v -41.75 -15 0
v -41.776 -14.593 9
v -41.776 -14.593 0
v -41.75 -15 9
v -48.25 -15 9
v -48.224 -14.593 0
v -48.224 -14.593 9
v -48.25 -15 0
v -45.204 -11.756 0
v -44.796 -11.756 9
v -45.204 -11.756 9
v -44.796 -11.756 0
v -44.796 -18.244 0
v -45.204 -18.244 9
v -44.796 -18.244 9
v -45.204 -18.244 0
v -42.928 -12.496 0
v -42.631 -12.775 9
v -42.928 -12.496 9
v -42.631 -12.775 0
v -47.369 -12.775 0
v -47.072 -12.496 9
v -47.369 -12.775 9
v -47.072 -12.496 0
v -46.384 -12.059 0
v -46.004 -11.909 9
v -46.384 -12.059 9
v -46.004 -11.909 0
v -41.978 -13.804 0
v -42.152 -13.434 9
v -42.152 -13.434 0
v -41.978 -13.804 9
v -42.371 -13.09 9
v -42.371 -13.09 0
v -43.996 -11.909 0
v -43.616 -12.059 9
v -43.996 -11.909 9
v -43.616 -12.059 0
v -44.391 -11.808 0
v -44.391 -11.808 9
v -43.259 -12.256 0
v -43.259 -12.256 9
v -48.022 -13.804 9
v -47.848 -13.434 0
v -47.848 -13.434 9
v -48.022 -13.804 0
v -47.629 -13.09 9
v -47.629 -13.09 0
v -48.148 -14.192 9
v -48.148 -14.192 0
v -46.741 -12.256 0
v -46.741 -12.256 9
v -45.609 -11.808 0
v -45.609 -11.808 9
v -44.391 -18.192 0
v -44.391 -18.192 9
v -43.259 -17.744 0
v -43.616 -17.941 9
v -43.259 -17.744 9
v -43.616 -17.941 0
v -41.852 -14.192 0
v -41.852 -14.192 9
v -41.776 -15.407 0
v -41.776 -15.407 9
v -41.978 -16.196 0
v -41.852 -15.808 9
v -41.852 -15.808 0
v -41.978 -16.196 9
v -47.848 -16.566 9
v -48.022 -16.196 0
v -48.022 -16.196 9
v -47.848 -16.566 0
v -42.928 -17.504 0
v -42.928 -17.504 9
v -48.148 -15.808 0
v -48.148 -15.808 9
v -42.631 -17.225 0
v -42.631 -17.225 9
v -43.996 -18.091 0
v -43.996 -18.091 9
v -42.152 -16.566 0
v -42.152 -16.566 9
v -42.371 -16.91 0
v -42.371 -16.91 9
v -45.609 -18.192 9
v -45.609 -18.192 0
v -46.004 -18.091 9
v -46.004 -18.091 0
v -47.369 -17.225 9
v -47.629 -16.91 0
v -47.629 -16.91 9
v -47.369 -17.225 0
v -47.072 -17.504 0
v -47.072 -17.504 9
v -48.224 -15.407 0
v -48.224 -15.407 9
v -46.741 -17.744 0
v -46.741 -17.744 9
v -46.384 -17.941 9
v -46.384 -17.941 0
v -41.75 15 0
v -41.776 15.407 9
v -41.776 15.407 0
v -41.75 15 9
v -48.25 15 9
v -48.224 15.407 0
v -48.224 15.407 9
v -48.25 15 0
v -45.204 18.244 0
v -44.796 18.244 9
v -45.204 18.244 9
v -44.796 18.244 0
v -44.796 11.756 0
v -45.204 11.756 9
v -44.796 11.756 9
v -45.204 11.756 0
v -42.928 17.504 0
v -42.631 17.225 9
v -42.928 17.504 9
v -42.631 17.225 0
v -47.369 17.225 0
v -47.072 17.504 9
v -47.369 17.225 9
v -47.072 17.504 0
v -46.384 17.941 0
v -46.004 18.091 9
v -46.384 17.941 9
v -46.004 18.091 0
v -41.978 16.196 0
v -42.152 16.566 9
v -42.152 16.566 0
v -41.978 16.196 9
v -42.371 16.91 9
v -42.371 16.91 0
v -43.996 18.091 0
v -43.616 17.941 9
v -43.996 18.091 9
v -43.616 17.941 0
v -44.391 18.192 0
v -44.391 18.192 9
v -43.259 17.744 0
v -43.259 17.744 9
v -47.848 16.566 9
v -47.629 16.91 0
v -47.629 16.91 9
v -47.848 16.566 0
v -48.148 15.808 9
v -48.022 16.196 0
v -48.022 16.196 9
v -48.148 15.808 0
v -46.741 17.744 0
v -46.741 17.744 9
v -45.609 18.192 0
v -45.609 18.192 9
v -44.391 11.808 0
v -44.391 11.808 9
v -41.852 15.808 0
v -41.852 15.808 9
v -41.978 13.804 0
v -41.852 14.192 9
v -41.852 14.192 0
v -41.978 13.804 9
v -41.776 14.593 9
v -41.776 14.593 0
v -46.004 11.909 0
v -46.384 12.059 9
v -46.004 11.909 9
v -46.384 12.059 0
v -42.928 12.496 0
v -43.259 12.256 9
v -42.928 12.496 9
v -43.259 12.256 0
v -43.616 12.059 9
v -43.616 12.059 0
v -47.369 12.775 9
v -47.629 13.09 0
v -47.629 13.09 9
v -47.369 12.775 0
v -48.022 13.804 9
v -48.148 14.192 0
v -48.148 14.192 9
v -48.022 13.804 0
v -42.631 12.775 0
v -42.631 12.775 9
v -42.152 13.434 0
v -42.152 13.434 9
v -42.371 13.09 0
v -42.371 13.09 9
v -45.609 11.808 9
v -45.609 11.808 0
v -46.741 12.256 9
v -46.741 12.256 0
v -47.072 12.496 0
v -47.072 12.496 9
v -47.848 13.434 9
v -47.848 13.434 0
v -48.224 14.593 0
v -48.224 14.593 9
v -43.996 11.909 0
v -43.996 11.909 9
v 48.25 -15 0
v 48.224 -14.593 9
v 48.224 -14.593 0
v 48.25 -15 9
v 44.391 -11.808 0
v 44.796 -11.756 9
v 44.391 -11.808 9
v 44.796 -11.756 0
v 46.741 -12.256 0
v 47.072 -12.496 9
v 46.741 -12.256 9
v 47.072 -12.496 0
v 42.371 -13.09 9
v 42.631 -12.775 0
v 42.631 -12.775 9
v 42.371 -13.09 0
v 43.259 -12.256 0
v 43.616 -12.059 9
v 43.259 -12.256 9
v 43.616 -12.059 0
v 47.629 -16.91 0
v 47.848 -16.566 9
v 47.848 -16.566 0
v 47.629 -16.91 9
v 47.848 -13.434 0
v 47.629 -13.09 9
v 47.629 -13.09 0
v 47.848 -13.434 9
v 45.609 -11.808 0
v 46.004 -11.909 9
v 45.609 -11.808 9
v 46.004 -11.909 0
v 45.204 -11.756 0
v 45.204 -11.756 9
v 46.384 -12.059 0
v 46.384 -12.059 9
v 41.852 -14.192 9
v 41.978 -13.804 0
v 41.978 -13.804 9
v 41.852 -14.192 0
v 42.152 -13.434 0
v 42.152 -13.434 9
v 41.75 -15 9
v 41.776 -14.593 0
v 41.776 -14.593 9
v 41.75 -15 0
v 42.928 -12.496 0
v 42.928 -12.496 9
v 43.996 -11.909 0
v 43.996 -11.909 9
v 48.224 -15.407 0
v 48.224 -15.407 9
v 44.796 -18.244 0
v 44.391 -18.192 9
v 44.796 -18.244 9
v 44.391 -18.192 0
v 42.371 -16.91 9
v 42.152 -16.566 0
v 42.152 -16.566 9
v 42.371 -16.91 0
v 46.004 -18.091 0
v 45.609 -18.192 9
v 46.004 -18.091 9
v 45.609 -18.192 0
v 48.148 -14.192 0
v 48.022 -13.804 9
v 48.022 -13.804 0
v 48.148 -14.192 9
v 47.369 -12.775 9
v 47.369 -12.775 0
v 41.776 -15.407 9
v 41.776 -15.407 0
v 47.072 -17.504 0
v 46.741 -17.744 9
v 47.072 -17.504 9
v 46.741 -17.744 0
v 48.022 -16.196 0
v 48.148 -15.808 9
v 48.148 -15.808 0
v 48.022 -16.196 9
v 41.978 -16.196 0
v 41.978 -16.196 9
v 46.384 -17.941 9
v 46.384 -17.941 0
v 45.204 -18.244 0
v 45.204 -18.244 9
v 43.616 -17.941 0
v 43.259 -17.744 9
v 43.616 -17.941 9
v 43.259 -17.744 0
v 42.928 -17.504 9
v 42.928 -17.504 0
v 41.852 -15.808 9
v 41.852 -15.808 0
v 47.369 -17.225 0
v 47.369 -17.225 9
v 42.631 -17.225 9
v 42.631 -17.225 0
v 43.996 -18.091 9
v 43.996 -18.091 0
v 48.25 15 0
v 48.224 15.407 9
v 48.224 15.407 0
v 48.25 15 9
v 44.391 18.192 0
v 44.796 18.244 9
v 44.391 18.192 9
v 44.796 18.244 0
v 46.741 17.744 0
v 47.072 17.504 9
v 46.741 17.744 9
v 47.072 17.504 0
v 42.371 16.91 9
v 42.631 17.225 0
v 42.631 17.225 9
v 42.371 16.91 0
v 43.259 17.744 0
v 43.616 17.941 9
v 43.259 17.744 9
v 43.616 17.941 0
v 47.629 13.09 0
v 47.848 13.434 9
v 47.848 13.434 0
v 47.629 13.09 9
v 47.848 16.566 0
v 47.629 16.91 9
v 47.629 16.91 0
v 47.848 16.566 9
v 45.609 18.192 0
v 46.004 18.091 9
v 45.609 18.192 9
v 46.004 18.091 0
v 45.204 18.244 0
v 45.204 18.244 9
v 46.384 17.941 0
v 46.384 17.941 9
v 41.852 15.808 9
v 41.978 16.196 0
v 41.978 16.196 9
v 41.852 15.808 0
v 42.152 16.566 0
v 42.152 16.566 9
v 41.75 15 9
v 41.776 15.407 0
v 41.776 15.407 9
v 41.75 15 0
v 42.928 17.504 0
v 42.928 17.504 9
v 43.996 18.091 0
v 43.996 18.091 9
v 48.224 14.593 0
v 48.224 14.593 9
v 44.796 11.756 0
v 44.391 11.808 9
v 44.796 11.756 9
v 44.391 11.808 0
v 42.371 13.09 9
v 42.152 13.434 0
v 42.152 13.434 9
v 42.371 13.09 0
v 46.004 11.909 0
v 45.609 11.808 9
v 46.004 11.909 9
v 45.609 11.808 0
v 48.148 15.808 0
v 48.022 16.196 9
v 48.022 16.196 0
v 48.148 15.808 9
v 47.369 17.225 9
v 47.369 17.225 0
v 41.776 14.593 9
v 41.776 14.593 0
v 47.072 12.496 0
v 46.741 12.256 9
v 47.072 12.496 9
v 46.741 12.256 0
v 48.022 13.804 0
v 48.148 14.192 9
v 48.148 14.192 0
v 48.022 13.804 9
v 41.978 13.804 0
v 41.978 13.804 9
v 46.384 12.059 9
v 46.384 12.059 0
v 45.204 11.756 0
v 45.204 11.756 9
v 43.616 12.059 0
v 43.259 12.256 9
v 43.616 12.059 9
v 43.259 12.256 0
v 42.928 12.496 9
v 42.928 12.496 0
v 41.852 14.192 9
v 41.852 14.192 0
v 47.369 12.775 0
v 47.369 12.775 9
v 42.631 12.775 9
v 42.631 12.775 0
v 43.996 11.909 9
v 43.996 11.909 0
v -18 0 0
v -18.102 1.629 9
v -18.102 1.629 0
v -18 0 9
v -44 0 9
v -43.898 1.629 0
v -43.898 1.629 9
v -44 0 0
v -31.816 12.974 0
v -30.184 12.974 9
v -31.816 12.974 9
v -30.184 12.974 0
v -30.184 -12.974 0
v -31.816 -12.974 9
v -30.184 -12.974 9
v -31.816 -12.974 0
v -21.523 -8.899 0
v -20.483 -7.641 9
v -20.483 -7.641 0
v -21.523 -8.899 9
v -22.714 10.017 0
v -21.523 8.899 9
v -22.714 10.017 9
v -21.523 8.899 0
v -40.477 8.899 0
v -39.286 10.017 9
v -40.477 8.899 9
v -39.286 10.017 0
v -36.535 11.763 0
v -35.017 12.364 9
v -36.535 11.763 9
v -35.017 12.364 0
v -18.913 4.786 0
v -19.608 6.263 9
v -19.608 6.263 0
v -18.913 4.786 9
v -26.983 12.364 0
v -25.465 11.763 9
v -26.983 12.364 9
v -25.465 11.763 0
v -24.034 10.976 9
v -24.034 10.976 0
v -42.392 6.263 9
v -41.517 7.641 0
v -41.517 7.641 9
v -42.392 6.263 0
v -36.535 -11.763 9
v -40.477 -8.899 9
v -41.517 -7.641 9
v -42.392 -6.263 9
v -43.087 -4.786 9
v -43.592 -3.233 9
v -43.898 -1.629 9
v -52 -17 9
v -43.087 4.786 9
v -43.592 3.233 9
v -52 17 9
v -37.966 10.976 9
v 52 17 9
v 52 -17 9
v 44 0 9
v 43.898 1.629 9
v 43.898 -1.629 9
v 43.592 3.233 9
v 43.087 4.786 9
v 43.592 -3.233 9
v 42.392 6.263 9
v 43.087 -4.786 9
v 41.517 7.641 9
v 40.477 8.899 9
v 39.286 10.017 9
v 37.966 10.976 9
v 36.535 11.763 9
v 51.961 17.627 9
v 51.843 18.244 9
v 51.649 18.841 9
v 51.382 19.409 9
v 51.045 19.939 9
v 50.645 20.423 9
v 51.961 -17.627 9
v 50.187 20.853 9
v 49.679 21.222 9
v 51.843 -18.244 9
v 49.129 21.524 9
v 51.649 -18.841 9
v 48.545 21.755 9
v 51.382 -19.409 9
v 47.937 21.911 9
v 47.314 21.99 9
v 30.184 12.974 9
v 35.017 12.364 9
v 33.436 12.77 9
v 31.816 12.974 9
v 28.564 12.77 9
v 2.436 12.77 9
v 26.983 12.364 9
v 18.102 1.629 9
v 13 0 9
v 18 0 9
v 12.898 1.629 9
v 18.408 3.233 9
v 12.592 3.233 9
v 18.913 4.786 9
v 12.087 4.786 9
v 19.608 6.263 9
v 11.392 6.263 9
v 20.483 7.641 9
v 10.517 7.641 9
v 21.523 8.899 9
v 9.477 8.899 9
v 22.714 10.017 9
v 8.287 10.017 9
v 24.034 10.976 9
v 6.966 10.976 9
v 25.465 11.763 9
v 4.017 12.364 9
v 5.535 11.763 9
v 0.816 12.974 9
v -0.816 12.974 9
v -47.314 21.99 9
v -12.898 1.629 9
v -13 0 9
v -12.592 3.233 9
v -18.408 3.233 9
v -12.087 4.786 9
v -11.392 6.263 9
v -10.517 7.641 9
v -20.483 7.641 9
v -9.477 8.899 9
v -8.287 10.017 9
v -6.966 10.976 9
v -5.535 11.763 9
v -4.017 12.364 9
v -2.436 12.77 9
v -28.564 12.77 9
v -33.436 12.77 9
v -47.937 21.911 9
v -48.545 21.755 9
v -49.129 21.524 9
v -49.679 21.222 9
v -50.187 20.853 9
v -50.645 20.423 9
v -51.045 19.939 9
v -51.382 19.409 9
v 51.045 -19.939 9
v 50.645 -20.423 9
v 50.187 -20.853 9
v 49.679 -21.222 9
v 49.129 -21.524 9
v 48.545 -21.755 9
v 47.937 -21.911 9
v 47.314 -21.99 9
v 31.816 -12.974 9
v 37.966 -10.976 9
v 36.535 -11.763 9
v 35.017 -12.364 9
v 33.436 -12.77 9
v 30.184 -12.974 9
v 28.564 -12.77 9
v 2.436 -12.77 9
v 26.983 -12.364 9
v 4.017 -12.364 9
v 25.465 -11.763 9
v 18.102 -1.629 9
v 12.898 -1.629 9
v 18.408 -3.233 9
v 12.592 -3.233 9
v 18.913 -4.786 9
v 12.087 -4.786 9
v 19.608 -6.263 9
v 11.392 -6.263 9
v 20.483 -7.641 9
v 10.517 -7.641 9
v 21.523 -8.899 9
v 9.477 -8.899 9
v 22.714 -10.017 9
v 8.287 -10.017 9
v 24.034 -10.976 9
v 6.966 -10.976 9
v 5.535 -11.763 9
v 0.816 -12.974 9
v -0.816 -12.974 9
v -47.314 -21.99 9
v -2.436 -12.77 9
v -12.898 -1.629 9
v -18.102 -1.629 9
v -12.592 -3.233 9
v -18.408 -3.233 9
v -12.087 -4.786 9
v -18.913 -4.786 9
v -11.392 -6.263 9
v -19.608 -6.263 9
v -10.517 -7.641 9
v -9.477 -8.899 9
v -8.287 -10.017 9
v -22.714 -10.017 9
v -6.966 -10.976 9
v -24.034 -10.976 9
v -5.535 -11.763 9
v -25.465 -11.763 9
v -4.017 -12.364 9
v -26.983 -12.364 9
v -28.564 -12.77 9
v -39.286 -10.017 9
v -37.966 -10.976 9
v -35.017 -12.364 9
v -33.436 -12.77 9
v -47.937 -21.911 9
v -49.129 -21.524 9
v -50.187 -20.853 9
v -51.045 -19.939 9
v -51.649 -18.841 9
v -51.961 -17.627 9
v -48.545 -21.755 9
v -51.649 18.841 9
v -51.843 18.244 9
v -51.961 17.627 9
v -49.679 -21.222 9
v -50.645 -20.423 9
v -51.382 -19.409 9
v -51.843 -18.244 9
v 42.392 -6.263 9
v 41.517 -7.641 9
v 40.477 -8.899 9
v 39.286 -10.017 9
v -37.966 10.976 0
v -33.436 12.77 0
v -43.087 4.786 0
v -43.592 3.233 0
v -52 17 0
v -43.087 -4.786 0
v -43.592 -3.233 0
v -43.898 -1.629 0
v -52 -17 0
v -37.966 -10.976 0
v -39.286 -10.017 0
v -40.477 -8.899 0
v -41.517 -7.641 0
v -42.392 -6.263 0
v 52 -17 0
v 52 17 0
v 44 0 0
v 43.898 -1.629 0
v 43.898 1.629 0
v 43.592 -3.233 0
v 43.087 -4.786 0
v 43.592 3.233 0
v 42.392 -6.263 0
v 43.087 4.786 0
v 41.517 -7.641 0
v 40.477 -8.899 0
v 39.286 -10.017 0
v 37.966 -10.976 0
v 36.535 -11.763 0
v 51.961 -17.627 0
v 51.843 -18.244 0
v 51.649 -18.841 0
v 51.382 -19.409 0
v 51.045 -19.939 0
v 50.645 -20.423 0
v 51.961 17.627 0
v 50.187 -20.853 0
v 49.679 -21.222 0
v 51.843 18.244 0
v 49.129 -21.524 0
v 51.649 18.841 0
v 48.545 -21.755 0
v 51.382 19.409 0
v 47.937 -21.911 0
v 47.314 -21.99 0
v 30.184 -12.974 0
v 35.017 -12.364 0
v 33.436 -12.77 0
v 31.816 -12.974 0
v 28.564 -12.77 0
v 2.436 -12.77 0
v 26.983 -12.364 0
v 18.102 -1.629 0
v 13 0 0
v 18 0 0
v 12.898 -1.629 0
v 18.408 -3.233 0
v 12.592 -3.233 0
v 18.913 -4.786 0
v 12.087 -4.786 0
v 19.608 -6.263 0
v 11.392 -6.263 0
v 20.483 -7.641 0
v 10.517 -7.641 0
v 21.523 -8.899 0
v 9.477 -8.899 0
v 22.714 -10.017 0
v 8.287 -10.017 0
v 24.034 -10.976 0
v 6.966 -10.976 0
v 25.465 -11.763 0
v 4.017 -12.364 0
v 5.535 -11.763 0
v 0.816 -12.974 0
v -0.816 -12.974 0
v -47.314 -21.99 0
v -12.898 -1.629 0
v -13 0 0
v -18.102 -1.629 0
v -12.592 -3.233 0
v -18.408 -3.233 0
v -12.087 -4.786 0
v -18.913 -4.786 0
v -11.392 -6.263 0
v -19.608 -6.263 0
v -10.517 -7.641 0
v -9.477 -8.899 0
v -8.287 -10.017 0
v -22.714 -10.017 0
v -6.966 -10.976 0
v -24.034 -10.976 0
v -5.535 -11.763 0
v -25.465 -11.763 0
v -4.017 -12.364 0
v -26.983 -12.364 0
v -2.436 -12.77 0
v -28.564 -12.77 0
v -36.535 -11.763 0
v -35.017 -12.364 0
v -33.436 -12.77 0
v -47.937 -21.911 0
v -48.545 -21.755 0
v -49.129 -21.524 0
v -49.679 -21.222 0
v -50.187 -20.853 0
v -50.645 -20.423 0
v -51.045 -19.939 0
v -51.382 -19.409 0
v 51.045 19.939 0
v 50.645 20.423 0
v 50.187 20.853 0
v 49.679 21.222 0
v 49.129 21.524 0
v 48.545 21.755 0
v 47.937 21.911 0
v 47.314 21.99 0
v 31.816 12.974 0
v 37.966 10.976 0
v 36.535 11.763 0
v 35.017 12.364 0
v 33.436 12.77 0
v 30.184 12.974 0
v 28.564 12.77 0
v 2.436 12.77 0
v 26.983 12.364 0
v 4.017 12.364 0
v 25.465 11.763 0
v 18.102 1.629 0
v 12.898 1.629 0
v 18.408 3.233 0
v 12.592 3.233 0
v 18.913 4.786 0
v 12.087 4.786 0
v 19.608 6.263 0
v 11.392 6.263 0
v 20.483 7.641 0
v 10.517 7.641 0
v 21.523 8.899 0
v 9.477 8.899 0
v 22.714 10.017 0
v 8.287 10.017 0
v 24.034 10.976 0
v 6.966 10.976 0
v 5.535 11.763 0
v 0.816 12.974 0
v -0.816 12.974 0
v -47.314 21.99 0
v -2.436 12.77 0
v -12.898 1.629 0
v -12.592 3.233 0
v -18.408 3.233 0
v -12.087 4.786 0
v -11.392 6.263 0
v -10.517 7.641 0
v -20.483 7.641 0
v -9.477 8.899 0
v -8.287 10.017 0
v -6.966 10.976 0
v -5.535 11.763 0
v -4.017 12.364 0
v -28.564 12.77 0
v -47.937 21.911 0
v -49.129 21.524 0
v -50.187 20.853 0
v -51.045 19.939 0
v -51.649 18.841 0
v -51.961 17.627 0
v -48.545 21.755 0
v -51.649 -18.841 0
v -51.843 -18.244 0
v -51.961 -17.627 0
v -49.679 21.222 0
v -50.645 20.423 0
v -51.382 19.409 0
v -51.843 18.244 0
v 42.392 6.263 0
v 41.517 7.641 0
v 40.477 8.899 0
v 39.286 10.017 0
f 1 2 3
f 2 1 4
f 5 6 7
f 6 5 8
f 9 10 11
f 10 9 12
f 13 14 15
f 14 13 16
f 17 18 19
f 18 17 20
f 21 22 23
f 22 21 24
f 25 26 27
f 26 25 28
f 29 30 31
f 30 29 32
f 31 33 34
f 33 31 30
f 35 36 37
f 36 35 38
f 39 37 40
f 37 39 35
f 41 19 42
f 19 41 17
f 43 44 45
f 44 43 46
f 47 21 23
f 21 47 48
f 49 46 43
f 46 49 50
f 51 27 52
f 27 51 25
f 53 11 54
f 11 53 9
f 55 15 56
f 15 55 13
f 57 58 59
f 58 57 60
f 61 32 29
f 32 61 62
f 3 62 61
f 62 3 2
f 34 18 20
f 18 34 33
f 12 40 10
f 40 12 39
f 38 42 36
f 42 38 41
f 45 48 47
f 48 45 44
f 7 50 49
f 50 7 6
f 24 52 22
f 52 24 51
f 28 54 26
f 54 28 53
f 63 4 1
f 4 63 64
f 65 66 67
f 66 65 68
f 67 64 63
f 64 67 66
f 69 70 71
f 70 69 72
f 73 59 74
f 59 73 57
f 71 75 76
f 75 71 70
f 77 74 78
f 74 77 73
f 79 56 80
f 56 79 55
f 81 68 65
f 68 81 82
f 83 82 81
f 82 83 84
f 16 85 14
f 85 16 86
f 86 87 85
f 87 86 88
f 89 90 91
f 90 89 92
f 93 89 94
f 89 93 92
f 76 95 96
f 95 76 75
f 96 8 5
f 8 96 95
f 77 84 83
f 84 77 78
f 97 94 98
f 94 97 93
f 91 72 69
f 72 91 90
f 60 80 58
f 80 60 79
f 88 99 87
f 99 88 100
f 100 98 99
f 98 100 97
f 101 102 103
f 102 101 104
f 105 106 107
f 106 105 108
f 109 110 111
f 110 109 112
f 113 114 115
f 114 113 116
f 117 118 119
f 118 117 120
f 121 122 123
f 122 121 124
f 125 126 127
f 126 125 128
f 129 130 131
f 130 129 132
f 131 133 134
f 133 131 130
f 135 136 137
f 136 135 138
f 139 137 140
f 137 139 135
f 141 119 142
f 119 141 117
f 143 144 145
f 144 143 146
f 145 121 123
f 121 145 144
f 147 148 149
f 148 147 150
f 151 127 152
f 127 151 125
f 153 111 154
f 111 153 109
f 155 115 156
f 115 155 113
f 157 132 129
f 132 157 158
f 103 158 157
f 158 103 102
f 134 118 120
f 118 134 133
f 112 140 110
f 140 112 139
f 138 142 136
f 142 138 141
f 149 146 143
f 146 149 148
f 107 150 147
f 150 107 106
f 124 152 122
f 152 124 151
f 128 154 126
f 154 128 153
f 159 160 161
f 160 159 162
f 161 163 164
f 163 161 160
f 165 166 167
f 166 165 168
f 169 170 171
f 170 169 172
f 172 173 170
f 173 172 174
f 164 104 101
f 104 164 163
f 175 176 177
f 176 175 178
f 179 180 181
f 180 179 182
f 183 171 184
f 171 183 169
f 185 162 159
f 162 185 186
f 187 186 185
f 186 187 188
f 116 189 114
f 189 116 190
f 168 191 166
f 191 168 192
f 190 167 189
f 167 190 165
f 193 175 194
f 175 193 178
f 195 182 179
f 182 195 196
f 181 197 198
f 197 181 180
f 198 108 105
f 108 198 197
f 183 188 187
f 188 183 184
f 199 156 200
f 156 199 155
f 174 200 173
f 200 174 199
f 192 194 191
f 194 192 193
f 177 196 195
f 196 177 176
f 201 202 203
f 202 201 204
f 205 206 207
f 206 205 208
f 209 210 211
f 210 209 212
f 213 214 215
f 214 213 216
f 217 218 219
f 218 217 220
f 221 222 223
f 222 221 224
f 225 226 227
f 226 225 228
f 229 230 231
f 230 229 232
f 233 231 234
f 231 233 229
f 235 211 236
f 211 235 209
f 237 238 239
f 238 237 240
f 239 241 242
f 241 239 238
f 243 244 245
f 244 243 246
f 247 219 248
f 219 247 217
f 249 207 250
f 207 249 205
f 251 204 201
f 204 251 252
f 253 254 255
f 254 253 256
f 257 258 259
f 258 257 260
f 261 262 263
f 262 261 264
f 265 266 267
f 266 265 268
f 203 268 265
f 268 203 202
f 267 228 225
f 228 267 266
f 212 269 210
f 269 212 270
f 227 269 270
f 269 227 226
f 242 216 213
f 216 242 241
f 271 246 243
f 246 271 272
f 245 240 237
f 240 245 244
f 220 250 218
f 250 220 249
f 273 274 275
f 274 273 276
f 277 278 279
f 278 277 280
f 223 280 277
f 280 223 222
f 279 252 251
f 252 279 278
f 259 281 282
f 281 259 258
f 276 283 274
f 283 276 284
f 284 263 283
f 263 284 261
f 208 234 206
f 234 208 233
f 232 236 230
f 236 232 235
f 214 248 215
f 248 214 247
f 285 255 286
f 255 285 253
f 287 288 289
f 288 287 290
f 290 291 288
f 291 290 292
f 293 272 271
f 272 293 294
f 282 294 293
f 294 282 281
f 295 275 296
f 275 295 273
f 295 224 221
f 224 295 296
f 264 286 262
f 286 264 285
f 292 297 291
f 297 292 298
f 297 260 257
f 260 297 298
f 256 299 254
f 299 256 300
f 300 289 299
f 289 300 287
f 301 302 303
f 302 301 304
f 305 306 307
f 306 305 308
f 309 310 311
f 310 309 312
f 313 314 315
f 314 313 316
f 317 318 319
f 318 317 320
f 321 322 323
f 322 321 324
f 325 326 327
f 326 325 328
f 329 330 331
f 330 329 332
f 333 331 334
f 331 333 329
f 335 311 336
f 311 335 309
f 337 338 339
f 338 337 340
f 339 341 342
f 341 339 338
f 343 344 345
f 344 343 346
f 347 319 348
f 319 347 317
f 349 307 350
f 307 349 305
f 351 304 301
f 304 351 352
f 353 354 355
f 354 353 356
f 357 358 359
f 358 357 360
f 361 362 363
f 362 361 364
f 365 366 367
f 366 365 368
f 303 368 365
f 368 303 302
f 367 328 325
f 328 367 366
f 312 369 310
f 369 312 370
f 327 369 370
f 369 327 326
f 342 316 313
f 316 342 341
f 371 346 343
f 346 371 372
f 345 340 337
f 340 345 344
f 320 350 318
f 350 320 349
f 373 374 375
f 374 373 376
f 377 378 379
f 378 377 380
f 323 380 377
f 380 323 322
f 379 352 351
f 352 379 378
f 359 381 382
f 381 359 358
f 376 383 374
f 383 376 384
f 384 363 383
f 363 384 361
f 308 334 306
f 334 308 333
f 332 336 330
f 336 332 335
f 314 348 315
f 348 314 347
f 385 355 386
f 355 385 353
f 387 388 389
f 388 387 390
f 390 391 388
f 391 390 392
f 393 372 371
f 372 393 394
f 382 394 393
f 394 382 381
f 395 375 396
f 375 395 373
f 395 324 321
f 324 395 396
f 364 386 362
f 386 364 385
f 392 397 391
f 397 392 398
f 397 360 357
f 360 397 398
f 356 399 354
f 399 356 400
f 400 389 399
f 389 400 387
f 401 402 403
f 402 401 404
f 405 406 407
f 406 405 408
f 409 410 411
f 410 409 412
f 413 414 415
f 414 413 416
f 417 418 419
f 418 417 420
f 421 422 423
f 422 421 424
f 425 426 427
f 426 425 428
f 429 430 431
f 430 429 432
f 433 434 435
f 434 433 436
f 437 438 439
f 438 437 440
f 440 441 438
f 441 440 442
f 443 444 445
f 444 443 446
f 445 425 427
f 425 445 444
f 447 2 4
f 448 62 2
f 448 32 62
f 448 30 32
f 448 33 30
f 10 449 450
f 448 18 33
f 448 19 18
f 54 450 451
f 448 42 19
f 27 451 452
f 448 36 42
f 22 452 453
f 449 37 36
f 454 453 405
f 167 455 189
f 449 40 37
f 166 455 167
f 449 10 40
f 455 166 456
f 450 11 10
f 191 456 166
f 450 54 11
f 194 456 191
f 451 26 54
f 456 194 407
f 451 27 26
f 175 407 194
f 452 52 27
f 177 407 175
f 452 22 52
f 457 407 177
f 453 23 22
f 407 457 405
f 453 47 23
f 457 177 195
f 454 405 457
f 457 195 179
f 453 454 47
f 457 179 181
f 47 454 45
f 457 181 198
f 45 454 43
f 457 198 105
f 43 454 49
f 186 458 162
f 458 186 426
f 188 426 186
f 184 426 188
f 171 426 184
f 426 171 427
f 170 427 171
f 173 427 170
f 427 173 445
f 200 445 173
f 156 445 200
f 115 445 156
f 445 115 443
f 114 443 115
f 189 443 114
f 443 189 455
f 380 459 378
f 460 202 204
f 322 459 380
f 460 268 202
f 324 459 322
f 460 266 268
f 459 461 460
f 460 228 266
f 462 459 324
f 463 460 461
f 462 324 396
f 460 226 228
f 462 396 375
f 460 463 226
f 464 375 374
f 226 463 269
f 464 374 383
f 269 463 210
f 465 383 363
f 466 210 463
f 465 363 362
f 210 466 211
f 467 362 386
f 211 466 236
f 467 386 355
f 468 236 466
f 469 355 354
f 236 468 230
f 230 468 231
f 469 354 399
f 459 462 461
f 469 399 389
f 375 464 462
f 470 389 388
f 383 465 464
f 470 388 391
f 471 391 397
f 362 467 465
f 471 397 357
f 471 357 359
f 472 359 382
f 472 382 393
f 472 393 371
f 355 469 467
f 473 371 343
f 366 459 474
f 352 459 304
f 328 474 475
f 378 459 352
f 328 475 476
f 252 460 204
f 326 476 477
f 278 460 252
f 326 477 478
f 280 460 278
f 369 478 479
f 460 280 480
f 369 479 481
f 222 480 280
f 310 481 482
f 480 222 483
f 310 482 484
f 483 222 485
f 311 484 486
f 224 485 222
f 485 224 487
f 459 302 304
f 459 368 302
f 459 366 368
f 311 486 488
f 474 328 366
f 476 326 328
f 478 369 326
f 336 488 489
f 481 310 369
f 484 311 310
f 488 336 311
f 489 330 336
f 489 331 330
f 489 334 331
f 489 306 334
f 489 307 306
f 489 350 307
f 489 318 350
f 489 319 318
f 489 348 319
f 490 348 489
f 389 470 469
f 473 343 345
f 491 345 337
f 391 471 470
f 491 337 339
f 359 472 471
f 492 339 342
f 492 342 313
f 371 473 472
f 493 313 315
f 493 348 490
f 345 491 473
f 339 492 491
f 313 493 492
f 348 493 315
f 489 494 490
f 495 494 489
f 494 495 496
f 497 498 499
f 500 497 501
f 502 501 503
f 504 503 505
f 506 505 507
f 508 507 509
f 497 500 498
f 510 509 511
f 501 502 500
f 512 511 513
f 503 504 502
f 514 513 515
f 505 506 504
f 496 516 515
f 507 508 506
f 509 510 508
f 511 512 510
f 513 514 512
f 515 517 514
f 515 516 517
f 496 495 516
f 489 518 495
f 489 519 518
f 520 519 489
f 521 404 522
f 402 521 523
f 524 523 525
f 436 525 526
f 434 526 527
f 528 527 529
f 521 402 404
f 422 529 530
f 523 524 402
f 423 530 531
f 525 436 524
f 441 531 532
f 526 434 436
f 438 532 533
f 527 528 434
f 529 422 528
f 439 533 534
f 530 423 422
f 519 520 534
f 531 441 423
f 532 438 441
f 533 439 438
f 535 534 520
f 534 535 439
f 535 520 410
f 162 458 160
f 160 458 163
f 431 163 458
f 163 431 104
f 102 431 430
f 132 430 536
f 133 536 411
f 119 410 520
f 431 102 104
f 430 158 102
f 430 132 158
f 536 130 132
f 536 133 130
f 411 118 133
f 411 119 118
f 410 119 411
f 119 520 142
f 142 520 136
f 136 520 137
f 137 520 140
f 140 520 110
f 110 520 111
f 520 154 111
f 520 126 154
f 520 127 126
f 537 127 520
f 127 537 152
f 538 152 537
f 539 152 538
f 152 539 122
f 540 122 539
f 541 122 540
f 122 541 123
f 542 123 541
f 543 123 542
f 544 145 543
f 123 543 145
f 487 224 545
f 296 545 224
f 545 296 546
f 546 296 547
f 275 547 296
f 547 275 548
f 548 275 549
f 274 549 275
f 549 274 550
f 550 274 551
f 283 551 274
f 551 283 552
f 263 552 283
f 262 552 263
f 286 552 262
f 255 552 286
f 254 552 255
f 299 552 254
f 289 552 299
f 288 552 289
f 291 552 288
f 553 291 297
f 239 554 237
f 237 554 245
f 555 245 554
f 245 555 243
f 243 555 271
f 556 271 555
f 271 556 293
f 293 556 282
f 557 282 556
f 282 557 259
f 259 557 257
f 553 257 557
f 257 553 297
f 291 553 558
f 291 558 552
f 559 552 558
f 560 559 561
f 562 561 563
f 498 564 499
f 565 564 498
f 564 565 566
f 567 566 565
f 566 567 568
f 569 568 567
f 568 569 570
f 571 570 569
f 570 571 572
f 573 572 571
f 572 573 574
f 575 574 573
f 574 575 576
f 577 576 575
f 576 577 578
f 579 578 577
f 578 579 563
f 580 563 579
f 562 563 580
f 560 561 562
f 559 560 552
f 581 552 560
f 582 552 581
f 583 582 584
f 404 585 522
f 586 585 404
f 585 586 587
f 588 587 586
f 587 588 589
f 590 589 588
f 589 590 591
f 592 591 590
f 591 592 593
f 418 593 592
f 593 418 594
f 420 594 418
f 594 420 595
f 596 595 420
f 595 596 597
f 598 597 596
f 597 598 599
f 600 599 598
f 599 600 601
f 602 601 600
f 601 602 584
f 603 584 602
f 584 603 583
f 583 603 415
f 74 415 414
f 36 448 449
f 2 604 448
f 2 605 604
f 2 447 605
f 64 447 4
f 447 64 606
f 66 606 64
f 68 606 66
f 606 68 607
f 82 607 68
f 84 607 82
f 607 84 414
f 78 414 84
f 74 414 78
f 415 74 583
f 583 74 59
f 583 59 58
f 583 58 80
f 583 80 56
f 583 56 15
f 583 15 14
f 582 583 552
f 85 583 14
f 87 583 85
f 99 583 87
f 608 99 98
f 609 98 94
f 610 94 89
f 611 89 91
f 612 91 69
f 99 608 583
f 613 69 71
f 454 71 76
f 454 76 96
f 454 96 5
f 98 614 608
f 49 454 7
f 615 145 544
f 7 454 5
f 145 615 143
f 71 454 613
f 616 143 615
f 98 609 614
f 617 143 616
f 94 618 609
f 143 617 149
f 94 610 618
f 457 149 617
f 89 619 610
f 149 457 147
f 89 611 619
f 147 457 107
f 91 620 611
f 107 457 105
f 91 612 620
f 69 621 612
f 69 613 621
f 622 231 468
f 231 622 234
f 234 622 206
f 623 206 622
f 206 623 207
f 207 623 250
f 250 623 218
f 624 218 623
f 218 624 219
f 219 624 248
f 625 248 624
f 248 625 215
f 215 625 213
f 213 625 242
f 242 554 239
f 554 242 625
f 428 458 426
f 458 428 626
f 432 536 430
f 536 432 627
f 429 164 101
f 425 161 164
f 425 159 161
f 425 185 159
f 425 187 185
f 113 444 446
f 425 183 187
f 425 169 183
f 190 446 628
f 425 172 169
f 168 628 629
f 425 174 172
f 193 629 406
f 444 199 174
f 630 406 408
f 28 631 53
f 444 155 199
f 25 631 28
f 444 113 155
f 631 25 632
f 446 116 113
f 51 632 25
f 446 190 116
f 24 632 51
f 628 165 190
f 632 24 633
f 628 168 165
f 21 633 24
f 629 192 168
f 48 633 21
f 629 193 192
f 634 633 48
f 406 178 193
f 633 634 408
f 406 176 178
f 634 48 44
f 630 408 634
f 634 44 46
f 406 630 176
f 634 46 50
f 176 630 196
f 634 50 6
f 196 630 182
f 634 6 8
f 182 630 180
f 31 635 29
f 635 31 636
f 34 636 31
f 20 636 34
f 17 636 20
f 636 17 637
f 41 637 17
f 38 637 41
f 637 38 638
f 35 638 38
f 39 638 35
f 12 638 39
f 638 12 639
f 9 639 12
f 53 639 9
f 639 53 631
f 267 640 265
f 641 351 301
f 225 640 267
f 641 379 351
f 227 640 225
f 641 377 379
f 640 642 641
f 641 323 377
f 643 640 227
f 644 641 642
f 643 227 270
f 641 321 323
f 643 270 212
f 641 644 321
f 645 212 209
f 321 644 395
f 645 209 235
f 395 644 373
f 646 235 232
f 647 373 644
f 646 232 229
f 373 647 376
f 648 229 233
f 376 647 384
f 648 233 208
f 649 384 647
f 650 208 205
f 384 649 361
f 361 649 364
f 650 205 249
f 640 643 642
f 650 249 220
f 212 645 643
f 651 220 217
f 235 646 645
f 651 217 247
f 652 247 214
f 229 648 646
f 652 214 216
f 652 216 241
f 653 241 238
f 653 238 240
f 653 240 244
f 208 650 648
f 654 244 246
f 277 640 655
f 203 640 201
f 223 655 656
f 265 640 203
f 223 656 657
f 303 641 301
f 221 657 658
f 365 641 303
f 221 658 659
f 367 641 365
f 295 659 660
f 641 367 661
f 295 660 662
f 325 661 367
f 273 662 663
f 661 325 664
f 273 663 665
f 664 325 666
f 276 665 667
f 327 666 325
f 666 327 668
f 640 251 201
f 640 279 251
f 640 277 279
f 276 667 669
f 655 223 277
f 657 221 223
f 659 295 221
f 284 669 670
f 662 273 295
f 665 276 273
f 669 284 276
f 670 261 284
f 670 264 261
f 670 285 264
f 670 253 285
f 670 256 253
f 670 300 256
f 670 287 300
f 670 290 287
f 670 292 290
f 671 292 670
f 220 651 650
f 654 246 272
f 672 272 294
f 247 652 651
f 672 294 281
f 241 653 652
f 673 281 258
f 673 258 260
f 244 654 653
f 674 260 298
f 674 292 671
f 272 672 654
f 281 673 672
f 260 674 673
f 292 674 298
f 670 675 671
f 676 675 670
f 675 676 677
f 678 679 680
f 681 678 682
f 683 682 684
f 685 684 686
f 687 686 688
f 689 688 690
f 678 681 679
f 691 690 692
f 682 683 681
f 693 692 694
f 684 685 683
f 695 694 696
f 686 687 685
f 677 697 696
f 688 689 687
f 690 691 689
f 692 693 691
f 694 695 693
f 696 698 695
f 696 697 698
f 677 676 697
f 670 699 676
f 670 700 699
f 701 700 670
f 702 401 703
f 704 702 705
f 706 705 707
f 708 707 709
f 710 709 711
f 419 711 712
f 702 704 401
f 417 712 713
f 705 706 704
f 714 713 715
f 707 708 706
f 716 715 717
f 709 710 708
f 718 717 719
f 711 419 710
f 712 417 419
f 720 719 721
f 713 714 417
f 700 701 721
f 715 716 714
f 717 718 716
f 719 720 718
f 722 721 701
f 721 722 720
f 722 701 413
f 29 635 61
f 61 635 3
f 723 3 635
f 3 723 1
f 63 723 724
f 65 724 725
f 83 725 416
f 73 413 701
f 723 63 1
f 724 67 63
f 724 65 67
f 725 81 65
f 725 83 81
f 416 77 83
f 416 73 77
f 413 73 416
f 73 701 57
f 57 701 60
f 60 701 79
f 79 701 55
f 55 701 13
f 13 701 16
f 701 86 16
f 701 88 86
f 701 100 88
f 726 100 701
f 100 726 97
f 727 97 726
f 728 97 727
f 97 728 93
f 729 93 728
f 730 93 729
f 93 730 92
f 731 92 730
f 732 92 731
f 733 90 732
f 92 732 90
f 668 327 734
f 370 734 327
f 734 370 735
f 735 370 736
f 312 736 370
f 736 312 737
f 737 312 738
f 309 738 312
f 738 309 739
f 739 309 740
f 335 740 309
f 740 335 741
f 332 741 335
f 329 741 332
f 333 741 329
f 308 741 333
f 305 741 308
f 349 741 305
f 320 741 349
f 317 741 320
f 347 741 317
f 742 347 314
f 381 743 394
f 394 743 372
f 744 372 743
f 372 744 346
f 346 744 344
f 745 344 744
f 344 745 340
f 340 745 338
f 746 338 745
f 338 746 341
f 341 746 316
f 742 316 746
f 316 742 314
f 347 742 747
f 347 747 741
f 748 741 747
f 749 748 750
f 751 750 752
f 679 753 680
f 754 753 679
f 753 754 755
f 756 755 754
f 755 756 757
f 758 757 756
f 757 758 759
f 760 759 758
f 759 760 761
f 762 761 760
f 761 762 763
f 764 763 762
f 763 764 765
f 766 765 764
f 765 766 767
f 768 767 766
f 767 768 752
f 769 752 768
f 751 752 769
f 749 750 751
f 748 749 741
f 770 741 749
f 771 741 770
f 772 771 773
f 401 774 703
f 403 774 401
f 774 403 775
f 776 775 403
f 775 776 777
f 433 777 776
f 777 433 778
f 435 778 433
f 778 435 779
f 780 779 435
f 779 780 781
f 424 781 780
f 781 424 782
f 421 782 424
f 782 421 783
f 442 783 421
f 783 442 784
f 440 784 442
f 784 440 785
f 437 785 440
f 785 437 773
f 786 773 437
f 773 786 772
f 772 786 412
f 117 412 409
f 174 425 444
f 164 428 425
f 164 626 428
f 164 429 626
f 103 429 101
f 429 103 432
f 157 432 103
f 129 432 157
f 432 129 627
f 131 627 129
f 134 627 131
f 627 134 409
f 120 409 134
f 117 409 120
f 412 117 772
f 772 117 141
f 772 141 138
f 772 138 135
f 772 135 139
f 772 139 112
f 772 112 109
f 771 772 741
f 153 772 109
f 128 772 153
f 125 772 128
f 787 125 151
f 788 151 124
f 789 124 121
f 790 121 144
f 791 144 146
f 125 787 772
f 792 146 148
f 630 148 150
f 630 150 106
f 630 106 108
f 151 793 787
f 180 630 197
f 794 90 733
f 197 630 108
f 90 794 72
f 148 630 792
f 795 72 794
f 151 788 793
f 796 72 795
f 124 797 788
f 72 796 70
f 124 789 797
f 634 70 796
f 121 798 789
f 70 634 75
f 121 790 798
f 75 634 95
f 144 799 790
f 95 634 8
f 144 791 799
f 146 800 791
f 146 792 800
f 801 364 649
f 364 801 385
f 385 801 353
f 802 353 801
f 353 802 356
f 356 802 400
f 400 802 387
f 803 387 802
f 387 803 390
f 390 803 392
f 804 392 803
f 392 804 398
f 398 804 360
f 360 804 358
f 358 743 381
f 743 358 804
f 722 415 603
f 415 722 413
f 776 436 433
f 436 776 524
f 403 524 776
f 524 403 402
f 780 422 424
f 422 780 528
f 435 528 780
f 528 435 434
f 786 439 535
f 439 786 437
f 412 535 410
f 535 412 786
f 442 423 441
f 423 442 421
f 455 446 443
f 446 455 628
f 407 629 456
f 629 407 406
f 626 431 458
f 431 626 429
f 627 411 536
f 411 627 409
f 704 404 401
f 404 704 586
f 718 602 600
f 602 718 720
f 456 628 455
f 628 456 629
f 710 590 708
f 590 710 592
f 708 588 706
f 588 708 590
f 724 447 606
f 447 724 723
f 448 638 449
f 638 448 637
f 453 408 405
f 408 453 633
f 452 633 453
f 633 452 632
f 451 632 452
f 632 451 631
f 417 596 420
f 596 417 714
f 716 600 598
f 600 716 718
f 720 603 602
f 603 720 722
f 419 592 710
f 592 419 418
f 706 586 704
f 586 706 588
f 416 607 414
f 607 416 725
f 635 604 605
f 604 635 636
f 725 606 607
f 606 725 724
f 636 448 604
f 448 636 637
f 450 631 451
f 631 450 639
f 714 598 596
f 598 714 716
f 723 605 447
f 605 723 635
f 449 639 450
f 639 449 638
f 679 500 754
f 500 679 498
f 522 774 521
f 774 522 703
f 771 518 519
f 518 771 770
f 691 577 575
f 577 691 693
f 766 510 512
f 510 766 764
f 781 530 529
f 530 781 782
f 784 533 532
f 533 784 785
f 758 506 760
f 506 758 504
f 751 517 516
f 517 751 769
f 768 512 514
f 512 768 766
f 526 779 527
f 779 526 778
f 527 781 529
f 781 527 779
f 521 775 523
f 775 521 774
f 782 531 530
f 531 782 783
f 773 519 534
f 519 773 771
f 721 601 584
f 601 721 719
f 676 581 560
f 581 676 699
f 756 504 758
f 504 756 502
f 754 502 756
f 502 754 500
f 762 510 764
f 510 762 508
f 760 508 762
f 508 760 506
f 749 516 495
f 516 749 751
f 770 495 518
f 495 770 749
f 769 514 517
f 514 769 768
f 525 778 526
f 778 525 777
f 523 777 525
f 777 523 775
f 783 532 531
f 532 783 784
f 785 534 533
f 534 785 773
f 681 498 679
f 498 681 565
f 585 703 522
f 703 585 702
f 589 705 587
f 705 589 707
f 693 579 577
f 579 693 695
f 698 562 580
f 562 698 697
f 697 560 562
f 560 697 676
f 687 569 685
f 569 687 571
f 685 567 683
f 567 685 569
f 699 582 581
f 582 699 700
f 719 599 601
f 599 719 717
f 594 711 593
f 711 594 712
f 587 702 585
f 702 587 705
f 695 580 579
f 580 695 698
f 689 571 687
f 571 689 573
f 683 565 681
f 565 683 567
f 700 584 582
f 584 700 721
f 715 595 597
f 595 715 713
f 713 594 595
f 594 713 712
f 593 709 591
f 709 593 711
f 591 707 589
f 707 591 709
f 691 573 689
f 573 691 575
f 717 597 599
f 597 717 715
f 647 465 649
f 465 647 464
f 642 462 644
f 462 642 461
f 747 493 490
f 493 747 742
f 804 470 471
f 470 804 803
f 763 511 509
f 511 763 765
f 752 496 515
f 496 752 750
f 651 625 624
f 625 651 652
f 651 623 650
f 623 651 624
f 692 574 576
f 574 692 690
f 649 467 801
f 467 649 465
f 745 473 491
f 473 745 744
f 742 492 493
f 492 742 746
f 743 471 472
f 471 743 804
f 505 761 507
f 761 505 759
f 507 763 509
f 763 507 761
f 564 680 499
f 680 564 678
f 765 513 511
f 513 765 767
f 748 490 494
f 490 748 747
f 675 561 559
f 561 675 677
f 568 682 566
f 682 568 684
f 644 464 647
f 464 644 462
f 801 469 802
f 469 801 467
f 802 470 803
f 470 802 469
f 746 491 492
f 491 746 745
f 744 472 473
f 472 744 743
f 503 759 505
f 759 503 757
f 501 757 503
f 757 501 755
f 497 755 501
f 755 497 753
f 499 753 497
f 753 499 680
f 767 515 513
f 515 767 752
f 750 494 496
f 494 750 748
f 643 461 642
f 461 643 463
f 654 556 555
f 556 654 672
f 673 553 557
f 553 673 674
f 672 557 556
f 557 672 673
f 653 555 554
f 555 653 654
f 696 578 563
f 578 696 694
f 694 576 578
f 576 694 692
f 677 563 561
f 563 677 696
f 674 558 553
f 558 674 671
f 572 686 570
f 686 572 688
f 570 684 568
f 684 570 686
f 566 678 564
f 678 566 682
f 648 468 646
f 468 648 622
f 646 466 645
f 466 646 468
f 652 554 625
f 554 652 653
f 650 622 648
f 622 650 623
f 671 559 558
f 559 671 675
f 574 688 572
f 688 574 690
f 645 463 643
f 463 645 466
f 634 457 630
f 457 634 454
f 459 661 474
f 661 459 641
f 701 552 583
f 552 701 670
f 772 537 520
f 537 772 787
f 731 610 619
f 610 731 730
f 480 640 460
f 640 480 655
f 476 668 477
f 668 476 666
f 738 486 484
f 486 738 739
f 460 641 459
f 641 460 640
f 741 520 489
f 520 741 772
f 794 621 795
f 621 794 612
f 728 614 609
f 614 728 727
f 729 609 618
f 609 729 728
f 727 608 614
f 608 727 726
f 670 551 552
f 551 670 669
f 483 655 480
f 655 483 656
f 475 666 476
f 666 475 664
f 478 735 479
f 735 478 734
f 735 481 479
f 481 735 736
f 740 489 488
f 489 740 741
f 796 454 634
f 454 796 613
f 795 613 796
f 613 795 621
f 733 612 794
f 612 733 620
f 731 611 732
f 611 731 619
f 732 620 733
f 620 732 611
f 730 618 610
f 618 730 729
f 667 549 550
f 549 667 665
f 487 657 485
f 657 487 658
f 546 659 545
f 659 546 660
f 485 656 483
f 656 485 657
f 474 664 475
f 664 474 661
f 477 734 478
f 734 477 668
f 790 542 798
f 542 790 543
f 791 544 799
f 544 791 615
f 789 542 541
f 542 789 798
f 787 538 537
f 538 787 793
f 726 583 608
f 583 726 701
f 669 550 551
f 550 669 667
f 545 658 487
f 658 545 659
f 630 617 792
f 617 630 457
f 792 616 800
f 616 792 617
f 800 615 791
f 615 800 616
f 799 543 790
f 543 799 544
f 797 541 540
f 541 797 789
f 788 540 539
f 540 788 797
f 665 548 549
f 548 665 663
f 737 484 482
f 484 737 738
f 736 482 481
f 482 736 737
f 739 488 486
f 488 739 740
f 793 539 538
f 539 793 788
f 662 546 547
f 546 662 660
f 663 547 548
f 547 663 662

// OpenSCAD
$fn = 50;


difference() {
	union() {
		hull() {
			translate(v = [-47.0000000000, 17.0000000000, 0]) {
				cylinder(h = 9, r = 5);
			}
			translate(v = [47.0000000000, 17.0000000000, 0]) {
				cylinder(h = 9, r = 5);
			}
			translate(v = [-47.0000000000, -17.0000000000, 0]) {
				cylinder(h = 9, r = 5);
			}
			translate(v = [47.0000000000, -17.0000000000, 0]) {
				cylinder(h = 9, r = 5);
			}
		}
	}
	union() {
		#translate(v = [-45.0000000000, -15.0000000000, -100.0000000000]) {
			cylinder(h = 200, r = 3.2500000000);
		}
		#translate(v = [-45.0000000000, 15.0000000000, -100.0000000000]) {
			cylinder(h = 200, r = 3.2500000000);
		}
		#translate(v = [45.0000000000, -15.0000000000, -100.0000000000]) {
			cylinder(h = 200, r = 3.2500000000);
		}
		#translate(v = [45.0000000000, 15.0000000000, -100.0000000000]) {
			cylinder(h = 200, r = 3.2500000000);
		}
		#translate(v = [-31.0000000000, 0, 0]) {
			cylinder(h = 9, r = 13.0000000000);
		}
		#cylinder(h = 9, r = 13.0000000000);
		#translate(v = [31.0000000000, 0, 0]) {
			cylinder(h = 9, r = 13.0000000000);
		}
	}
}
